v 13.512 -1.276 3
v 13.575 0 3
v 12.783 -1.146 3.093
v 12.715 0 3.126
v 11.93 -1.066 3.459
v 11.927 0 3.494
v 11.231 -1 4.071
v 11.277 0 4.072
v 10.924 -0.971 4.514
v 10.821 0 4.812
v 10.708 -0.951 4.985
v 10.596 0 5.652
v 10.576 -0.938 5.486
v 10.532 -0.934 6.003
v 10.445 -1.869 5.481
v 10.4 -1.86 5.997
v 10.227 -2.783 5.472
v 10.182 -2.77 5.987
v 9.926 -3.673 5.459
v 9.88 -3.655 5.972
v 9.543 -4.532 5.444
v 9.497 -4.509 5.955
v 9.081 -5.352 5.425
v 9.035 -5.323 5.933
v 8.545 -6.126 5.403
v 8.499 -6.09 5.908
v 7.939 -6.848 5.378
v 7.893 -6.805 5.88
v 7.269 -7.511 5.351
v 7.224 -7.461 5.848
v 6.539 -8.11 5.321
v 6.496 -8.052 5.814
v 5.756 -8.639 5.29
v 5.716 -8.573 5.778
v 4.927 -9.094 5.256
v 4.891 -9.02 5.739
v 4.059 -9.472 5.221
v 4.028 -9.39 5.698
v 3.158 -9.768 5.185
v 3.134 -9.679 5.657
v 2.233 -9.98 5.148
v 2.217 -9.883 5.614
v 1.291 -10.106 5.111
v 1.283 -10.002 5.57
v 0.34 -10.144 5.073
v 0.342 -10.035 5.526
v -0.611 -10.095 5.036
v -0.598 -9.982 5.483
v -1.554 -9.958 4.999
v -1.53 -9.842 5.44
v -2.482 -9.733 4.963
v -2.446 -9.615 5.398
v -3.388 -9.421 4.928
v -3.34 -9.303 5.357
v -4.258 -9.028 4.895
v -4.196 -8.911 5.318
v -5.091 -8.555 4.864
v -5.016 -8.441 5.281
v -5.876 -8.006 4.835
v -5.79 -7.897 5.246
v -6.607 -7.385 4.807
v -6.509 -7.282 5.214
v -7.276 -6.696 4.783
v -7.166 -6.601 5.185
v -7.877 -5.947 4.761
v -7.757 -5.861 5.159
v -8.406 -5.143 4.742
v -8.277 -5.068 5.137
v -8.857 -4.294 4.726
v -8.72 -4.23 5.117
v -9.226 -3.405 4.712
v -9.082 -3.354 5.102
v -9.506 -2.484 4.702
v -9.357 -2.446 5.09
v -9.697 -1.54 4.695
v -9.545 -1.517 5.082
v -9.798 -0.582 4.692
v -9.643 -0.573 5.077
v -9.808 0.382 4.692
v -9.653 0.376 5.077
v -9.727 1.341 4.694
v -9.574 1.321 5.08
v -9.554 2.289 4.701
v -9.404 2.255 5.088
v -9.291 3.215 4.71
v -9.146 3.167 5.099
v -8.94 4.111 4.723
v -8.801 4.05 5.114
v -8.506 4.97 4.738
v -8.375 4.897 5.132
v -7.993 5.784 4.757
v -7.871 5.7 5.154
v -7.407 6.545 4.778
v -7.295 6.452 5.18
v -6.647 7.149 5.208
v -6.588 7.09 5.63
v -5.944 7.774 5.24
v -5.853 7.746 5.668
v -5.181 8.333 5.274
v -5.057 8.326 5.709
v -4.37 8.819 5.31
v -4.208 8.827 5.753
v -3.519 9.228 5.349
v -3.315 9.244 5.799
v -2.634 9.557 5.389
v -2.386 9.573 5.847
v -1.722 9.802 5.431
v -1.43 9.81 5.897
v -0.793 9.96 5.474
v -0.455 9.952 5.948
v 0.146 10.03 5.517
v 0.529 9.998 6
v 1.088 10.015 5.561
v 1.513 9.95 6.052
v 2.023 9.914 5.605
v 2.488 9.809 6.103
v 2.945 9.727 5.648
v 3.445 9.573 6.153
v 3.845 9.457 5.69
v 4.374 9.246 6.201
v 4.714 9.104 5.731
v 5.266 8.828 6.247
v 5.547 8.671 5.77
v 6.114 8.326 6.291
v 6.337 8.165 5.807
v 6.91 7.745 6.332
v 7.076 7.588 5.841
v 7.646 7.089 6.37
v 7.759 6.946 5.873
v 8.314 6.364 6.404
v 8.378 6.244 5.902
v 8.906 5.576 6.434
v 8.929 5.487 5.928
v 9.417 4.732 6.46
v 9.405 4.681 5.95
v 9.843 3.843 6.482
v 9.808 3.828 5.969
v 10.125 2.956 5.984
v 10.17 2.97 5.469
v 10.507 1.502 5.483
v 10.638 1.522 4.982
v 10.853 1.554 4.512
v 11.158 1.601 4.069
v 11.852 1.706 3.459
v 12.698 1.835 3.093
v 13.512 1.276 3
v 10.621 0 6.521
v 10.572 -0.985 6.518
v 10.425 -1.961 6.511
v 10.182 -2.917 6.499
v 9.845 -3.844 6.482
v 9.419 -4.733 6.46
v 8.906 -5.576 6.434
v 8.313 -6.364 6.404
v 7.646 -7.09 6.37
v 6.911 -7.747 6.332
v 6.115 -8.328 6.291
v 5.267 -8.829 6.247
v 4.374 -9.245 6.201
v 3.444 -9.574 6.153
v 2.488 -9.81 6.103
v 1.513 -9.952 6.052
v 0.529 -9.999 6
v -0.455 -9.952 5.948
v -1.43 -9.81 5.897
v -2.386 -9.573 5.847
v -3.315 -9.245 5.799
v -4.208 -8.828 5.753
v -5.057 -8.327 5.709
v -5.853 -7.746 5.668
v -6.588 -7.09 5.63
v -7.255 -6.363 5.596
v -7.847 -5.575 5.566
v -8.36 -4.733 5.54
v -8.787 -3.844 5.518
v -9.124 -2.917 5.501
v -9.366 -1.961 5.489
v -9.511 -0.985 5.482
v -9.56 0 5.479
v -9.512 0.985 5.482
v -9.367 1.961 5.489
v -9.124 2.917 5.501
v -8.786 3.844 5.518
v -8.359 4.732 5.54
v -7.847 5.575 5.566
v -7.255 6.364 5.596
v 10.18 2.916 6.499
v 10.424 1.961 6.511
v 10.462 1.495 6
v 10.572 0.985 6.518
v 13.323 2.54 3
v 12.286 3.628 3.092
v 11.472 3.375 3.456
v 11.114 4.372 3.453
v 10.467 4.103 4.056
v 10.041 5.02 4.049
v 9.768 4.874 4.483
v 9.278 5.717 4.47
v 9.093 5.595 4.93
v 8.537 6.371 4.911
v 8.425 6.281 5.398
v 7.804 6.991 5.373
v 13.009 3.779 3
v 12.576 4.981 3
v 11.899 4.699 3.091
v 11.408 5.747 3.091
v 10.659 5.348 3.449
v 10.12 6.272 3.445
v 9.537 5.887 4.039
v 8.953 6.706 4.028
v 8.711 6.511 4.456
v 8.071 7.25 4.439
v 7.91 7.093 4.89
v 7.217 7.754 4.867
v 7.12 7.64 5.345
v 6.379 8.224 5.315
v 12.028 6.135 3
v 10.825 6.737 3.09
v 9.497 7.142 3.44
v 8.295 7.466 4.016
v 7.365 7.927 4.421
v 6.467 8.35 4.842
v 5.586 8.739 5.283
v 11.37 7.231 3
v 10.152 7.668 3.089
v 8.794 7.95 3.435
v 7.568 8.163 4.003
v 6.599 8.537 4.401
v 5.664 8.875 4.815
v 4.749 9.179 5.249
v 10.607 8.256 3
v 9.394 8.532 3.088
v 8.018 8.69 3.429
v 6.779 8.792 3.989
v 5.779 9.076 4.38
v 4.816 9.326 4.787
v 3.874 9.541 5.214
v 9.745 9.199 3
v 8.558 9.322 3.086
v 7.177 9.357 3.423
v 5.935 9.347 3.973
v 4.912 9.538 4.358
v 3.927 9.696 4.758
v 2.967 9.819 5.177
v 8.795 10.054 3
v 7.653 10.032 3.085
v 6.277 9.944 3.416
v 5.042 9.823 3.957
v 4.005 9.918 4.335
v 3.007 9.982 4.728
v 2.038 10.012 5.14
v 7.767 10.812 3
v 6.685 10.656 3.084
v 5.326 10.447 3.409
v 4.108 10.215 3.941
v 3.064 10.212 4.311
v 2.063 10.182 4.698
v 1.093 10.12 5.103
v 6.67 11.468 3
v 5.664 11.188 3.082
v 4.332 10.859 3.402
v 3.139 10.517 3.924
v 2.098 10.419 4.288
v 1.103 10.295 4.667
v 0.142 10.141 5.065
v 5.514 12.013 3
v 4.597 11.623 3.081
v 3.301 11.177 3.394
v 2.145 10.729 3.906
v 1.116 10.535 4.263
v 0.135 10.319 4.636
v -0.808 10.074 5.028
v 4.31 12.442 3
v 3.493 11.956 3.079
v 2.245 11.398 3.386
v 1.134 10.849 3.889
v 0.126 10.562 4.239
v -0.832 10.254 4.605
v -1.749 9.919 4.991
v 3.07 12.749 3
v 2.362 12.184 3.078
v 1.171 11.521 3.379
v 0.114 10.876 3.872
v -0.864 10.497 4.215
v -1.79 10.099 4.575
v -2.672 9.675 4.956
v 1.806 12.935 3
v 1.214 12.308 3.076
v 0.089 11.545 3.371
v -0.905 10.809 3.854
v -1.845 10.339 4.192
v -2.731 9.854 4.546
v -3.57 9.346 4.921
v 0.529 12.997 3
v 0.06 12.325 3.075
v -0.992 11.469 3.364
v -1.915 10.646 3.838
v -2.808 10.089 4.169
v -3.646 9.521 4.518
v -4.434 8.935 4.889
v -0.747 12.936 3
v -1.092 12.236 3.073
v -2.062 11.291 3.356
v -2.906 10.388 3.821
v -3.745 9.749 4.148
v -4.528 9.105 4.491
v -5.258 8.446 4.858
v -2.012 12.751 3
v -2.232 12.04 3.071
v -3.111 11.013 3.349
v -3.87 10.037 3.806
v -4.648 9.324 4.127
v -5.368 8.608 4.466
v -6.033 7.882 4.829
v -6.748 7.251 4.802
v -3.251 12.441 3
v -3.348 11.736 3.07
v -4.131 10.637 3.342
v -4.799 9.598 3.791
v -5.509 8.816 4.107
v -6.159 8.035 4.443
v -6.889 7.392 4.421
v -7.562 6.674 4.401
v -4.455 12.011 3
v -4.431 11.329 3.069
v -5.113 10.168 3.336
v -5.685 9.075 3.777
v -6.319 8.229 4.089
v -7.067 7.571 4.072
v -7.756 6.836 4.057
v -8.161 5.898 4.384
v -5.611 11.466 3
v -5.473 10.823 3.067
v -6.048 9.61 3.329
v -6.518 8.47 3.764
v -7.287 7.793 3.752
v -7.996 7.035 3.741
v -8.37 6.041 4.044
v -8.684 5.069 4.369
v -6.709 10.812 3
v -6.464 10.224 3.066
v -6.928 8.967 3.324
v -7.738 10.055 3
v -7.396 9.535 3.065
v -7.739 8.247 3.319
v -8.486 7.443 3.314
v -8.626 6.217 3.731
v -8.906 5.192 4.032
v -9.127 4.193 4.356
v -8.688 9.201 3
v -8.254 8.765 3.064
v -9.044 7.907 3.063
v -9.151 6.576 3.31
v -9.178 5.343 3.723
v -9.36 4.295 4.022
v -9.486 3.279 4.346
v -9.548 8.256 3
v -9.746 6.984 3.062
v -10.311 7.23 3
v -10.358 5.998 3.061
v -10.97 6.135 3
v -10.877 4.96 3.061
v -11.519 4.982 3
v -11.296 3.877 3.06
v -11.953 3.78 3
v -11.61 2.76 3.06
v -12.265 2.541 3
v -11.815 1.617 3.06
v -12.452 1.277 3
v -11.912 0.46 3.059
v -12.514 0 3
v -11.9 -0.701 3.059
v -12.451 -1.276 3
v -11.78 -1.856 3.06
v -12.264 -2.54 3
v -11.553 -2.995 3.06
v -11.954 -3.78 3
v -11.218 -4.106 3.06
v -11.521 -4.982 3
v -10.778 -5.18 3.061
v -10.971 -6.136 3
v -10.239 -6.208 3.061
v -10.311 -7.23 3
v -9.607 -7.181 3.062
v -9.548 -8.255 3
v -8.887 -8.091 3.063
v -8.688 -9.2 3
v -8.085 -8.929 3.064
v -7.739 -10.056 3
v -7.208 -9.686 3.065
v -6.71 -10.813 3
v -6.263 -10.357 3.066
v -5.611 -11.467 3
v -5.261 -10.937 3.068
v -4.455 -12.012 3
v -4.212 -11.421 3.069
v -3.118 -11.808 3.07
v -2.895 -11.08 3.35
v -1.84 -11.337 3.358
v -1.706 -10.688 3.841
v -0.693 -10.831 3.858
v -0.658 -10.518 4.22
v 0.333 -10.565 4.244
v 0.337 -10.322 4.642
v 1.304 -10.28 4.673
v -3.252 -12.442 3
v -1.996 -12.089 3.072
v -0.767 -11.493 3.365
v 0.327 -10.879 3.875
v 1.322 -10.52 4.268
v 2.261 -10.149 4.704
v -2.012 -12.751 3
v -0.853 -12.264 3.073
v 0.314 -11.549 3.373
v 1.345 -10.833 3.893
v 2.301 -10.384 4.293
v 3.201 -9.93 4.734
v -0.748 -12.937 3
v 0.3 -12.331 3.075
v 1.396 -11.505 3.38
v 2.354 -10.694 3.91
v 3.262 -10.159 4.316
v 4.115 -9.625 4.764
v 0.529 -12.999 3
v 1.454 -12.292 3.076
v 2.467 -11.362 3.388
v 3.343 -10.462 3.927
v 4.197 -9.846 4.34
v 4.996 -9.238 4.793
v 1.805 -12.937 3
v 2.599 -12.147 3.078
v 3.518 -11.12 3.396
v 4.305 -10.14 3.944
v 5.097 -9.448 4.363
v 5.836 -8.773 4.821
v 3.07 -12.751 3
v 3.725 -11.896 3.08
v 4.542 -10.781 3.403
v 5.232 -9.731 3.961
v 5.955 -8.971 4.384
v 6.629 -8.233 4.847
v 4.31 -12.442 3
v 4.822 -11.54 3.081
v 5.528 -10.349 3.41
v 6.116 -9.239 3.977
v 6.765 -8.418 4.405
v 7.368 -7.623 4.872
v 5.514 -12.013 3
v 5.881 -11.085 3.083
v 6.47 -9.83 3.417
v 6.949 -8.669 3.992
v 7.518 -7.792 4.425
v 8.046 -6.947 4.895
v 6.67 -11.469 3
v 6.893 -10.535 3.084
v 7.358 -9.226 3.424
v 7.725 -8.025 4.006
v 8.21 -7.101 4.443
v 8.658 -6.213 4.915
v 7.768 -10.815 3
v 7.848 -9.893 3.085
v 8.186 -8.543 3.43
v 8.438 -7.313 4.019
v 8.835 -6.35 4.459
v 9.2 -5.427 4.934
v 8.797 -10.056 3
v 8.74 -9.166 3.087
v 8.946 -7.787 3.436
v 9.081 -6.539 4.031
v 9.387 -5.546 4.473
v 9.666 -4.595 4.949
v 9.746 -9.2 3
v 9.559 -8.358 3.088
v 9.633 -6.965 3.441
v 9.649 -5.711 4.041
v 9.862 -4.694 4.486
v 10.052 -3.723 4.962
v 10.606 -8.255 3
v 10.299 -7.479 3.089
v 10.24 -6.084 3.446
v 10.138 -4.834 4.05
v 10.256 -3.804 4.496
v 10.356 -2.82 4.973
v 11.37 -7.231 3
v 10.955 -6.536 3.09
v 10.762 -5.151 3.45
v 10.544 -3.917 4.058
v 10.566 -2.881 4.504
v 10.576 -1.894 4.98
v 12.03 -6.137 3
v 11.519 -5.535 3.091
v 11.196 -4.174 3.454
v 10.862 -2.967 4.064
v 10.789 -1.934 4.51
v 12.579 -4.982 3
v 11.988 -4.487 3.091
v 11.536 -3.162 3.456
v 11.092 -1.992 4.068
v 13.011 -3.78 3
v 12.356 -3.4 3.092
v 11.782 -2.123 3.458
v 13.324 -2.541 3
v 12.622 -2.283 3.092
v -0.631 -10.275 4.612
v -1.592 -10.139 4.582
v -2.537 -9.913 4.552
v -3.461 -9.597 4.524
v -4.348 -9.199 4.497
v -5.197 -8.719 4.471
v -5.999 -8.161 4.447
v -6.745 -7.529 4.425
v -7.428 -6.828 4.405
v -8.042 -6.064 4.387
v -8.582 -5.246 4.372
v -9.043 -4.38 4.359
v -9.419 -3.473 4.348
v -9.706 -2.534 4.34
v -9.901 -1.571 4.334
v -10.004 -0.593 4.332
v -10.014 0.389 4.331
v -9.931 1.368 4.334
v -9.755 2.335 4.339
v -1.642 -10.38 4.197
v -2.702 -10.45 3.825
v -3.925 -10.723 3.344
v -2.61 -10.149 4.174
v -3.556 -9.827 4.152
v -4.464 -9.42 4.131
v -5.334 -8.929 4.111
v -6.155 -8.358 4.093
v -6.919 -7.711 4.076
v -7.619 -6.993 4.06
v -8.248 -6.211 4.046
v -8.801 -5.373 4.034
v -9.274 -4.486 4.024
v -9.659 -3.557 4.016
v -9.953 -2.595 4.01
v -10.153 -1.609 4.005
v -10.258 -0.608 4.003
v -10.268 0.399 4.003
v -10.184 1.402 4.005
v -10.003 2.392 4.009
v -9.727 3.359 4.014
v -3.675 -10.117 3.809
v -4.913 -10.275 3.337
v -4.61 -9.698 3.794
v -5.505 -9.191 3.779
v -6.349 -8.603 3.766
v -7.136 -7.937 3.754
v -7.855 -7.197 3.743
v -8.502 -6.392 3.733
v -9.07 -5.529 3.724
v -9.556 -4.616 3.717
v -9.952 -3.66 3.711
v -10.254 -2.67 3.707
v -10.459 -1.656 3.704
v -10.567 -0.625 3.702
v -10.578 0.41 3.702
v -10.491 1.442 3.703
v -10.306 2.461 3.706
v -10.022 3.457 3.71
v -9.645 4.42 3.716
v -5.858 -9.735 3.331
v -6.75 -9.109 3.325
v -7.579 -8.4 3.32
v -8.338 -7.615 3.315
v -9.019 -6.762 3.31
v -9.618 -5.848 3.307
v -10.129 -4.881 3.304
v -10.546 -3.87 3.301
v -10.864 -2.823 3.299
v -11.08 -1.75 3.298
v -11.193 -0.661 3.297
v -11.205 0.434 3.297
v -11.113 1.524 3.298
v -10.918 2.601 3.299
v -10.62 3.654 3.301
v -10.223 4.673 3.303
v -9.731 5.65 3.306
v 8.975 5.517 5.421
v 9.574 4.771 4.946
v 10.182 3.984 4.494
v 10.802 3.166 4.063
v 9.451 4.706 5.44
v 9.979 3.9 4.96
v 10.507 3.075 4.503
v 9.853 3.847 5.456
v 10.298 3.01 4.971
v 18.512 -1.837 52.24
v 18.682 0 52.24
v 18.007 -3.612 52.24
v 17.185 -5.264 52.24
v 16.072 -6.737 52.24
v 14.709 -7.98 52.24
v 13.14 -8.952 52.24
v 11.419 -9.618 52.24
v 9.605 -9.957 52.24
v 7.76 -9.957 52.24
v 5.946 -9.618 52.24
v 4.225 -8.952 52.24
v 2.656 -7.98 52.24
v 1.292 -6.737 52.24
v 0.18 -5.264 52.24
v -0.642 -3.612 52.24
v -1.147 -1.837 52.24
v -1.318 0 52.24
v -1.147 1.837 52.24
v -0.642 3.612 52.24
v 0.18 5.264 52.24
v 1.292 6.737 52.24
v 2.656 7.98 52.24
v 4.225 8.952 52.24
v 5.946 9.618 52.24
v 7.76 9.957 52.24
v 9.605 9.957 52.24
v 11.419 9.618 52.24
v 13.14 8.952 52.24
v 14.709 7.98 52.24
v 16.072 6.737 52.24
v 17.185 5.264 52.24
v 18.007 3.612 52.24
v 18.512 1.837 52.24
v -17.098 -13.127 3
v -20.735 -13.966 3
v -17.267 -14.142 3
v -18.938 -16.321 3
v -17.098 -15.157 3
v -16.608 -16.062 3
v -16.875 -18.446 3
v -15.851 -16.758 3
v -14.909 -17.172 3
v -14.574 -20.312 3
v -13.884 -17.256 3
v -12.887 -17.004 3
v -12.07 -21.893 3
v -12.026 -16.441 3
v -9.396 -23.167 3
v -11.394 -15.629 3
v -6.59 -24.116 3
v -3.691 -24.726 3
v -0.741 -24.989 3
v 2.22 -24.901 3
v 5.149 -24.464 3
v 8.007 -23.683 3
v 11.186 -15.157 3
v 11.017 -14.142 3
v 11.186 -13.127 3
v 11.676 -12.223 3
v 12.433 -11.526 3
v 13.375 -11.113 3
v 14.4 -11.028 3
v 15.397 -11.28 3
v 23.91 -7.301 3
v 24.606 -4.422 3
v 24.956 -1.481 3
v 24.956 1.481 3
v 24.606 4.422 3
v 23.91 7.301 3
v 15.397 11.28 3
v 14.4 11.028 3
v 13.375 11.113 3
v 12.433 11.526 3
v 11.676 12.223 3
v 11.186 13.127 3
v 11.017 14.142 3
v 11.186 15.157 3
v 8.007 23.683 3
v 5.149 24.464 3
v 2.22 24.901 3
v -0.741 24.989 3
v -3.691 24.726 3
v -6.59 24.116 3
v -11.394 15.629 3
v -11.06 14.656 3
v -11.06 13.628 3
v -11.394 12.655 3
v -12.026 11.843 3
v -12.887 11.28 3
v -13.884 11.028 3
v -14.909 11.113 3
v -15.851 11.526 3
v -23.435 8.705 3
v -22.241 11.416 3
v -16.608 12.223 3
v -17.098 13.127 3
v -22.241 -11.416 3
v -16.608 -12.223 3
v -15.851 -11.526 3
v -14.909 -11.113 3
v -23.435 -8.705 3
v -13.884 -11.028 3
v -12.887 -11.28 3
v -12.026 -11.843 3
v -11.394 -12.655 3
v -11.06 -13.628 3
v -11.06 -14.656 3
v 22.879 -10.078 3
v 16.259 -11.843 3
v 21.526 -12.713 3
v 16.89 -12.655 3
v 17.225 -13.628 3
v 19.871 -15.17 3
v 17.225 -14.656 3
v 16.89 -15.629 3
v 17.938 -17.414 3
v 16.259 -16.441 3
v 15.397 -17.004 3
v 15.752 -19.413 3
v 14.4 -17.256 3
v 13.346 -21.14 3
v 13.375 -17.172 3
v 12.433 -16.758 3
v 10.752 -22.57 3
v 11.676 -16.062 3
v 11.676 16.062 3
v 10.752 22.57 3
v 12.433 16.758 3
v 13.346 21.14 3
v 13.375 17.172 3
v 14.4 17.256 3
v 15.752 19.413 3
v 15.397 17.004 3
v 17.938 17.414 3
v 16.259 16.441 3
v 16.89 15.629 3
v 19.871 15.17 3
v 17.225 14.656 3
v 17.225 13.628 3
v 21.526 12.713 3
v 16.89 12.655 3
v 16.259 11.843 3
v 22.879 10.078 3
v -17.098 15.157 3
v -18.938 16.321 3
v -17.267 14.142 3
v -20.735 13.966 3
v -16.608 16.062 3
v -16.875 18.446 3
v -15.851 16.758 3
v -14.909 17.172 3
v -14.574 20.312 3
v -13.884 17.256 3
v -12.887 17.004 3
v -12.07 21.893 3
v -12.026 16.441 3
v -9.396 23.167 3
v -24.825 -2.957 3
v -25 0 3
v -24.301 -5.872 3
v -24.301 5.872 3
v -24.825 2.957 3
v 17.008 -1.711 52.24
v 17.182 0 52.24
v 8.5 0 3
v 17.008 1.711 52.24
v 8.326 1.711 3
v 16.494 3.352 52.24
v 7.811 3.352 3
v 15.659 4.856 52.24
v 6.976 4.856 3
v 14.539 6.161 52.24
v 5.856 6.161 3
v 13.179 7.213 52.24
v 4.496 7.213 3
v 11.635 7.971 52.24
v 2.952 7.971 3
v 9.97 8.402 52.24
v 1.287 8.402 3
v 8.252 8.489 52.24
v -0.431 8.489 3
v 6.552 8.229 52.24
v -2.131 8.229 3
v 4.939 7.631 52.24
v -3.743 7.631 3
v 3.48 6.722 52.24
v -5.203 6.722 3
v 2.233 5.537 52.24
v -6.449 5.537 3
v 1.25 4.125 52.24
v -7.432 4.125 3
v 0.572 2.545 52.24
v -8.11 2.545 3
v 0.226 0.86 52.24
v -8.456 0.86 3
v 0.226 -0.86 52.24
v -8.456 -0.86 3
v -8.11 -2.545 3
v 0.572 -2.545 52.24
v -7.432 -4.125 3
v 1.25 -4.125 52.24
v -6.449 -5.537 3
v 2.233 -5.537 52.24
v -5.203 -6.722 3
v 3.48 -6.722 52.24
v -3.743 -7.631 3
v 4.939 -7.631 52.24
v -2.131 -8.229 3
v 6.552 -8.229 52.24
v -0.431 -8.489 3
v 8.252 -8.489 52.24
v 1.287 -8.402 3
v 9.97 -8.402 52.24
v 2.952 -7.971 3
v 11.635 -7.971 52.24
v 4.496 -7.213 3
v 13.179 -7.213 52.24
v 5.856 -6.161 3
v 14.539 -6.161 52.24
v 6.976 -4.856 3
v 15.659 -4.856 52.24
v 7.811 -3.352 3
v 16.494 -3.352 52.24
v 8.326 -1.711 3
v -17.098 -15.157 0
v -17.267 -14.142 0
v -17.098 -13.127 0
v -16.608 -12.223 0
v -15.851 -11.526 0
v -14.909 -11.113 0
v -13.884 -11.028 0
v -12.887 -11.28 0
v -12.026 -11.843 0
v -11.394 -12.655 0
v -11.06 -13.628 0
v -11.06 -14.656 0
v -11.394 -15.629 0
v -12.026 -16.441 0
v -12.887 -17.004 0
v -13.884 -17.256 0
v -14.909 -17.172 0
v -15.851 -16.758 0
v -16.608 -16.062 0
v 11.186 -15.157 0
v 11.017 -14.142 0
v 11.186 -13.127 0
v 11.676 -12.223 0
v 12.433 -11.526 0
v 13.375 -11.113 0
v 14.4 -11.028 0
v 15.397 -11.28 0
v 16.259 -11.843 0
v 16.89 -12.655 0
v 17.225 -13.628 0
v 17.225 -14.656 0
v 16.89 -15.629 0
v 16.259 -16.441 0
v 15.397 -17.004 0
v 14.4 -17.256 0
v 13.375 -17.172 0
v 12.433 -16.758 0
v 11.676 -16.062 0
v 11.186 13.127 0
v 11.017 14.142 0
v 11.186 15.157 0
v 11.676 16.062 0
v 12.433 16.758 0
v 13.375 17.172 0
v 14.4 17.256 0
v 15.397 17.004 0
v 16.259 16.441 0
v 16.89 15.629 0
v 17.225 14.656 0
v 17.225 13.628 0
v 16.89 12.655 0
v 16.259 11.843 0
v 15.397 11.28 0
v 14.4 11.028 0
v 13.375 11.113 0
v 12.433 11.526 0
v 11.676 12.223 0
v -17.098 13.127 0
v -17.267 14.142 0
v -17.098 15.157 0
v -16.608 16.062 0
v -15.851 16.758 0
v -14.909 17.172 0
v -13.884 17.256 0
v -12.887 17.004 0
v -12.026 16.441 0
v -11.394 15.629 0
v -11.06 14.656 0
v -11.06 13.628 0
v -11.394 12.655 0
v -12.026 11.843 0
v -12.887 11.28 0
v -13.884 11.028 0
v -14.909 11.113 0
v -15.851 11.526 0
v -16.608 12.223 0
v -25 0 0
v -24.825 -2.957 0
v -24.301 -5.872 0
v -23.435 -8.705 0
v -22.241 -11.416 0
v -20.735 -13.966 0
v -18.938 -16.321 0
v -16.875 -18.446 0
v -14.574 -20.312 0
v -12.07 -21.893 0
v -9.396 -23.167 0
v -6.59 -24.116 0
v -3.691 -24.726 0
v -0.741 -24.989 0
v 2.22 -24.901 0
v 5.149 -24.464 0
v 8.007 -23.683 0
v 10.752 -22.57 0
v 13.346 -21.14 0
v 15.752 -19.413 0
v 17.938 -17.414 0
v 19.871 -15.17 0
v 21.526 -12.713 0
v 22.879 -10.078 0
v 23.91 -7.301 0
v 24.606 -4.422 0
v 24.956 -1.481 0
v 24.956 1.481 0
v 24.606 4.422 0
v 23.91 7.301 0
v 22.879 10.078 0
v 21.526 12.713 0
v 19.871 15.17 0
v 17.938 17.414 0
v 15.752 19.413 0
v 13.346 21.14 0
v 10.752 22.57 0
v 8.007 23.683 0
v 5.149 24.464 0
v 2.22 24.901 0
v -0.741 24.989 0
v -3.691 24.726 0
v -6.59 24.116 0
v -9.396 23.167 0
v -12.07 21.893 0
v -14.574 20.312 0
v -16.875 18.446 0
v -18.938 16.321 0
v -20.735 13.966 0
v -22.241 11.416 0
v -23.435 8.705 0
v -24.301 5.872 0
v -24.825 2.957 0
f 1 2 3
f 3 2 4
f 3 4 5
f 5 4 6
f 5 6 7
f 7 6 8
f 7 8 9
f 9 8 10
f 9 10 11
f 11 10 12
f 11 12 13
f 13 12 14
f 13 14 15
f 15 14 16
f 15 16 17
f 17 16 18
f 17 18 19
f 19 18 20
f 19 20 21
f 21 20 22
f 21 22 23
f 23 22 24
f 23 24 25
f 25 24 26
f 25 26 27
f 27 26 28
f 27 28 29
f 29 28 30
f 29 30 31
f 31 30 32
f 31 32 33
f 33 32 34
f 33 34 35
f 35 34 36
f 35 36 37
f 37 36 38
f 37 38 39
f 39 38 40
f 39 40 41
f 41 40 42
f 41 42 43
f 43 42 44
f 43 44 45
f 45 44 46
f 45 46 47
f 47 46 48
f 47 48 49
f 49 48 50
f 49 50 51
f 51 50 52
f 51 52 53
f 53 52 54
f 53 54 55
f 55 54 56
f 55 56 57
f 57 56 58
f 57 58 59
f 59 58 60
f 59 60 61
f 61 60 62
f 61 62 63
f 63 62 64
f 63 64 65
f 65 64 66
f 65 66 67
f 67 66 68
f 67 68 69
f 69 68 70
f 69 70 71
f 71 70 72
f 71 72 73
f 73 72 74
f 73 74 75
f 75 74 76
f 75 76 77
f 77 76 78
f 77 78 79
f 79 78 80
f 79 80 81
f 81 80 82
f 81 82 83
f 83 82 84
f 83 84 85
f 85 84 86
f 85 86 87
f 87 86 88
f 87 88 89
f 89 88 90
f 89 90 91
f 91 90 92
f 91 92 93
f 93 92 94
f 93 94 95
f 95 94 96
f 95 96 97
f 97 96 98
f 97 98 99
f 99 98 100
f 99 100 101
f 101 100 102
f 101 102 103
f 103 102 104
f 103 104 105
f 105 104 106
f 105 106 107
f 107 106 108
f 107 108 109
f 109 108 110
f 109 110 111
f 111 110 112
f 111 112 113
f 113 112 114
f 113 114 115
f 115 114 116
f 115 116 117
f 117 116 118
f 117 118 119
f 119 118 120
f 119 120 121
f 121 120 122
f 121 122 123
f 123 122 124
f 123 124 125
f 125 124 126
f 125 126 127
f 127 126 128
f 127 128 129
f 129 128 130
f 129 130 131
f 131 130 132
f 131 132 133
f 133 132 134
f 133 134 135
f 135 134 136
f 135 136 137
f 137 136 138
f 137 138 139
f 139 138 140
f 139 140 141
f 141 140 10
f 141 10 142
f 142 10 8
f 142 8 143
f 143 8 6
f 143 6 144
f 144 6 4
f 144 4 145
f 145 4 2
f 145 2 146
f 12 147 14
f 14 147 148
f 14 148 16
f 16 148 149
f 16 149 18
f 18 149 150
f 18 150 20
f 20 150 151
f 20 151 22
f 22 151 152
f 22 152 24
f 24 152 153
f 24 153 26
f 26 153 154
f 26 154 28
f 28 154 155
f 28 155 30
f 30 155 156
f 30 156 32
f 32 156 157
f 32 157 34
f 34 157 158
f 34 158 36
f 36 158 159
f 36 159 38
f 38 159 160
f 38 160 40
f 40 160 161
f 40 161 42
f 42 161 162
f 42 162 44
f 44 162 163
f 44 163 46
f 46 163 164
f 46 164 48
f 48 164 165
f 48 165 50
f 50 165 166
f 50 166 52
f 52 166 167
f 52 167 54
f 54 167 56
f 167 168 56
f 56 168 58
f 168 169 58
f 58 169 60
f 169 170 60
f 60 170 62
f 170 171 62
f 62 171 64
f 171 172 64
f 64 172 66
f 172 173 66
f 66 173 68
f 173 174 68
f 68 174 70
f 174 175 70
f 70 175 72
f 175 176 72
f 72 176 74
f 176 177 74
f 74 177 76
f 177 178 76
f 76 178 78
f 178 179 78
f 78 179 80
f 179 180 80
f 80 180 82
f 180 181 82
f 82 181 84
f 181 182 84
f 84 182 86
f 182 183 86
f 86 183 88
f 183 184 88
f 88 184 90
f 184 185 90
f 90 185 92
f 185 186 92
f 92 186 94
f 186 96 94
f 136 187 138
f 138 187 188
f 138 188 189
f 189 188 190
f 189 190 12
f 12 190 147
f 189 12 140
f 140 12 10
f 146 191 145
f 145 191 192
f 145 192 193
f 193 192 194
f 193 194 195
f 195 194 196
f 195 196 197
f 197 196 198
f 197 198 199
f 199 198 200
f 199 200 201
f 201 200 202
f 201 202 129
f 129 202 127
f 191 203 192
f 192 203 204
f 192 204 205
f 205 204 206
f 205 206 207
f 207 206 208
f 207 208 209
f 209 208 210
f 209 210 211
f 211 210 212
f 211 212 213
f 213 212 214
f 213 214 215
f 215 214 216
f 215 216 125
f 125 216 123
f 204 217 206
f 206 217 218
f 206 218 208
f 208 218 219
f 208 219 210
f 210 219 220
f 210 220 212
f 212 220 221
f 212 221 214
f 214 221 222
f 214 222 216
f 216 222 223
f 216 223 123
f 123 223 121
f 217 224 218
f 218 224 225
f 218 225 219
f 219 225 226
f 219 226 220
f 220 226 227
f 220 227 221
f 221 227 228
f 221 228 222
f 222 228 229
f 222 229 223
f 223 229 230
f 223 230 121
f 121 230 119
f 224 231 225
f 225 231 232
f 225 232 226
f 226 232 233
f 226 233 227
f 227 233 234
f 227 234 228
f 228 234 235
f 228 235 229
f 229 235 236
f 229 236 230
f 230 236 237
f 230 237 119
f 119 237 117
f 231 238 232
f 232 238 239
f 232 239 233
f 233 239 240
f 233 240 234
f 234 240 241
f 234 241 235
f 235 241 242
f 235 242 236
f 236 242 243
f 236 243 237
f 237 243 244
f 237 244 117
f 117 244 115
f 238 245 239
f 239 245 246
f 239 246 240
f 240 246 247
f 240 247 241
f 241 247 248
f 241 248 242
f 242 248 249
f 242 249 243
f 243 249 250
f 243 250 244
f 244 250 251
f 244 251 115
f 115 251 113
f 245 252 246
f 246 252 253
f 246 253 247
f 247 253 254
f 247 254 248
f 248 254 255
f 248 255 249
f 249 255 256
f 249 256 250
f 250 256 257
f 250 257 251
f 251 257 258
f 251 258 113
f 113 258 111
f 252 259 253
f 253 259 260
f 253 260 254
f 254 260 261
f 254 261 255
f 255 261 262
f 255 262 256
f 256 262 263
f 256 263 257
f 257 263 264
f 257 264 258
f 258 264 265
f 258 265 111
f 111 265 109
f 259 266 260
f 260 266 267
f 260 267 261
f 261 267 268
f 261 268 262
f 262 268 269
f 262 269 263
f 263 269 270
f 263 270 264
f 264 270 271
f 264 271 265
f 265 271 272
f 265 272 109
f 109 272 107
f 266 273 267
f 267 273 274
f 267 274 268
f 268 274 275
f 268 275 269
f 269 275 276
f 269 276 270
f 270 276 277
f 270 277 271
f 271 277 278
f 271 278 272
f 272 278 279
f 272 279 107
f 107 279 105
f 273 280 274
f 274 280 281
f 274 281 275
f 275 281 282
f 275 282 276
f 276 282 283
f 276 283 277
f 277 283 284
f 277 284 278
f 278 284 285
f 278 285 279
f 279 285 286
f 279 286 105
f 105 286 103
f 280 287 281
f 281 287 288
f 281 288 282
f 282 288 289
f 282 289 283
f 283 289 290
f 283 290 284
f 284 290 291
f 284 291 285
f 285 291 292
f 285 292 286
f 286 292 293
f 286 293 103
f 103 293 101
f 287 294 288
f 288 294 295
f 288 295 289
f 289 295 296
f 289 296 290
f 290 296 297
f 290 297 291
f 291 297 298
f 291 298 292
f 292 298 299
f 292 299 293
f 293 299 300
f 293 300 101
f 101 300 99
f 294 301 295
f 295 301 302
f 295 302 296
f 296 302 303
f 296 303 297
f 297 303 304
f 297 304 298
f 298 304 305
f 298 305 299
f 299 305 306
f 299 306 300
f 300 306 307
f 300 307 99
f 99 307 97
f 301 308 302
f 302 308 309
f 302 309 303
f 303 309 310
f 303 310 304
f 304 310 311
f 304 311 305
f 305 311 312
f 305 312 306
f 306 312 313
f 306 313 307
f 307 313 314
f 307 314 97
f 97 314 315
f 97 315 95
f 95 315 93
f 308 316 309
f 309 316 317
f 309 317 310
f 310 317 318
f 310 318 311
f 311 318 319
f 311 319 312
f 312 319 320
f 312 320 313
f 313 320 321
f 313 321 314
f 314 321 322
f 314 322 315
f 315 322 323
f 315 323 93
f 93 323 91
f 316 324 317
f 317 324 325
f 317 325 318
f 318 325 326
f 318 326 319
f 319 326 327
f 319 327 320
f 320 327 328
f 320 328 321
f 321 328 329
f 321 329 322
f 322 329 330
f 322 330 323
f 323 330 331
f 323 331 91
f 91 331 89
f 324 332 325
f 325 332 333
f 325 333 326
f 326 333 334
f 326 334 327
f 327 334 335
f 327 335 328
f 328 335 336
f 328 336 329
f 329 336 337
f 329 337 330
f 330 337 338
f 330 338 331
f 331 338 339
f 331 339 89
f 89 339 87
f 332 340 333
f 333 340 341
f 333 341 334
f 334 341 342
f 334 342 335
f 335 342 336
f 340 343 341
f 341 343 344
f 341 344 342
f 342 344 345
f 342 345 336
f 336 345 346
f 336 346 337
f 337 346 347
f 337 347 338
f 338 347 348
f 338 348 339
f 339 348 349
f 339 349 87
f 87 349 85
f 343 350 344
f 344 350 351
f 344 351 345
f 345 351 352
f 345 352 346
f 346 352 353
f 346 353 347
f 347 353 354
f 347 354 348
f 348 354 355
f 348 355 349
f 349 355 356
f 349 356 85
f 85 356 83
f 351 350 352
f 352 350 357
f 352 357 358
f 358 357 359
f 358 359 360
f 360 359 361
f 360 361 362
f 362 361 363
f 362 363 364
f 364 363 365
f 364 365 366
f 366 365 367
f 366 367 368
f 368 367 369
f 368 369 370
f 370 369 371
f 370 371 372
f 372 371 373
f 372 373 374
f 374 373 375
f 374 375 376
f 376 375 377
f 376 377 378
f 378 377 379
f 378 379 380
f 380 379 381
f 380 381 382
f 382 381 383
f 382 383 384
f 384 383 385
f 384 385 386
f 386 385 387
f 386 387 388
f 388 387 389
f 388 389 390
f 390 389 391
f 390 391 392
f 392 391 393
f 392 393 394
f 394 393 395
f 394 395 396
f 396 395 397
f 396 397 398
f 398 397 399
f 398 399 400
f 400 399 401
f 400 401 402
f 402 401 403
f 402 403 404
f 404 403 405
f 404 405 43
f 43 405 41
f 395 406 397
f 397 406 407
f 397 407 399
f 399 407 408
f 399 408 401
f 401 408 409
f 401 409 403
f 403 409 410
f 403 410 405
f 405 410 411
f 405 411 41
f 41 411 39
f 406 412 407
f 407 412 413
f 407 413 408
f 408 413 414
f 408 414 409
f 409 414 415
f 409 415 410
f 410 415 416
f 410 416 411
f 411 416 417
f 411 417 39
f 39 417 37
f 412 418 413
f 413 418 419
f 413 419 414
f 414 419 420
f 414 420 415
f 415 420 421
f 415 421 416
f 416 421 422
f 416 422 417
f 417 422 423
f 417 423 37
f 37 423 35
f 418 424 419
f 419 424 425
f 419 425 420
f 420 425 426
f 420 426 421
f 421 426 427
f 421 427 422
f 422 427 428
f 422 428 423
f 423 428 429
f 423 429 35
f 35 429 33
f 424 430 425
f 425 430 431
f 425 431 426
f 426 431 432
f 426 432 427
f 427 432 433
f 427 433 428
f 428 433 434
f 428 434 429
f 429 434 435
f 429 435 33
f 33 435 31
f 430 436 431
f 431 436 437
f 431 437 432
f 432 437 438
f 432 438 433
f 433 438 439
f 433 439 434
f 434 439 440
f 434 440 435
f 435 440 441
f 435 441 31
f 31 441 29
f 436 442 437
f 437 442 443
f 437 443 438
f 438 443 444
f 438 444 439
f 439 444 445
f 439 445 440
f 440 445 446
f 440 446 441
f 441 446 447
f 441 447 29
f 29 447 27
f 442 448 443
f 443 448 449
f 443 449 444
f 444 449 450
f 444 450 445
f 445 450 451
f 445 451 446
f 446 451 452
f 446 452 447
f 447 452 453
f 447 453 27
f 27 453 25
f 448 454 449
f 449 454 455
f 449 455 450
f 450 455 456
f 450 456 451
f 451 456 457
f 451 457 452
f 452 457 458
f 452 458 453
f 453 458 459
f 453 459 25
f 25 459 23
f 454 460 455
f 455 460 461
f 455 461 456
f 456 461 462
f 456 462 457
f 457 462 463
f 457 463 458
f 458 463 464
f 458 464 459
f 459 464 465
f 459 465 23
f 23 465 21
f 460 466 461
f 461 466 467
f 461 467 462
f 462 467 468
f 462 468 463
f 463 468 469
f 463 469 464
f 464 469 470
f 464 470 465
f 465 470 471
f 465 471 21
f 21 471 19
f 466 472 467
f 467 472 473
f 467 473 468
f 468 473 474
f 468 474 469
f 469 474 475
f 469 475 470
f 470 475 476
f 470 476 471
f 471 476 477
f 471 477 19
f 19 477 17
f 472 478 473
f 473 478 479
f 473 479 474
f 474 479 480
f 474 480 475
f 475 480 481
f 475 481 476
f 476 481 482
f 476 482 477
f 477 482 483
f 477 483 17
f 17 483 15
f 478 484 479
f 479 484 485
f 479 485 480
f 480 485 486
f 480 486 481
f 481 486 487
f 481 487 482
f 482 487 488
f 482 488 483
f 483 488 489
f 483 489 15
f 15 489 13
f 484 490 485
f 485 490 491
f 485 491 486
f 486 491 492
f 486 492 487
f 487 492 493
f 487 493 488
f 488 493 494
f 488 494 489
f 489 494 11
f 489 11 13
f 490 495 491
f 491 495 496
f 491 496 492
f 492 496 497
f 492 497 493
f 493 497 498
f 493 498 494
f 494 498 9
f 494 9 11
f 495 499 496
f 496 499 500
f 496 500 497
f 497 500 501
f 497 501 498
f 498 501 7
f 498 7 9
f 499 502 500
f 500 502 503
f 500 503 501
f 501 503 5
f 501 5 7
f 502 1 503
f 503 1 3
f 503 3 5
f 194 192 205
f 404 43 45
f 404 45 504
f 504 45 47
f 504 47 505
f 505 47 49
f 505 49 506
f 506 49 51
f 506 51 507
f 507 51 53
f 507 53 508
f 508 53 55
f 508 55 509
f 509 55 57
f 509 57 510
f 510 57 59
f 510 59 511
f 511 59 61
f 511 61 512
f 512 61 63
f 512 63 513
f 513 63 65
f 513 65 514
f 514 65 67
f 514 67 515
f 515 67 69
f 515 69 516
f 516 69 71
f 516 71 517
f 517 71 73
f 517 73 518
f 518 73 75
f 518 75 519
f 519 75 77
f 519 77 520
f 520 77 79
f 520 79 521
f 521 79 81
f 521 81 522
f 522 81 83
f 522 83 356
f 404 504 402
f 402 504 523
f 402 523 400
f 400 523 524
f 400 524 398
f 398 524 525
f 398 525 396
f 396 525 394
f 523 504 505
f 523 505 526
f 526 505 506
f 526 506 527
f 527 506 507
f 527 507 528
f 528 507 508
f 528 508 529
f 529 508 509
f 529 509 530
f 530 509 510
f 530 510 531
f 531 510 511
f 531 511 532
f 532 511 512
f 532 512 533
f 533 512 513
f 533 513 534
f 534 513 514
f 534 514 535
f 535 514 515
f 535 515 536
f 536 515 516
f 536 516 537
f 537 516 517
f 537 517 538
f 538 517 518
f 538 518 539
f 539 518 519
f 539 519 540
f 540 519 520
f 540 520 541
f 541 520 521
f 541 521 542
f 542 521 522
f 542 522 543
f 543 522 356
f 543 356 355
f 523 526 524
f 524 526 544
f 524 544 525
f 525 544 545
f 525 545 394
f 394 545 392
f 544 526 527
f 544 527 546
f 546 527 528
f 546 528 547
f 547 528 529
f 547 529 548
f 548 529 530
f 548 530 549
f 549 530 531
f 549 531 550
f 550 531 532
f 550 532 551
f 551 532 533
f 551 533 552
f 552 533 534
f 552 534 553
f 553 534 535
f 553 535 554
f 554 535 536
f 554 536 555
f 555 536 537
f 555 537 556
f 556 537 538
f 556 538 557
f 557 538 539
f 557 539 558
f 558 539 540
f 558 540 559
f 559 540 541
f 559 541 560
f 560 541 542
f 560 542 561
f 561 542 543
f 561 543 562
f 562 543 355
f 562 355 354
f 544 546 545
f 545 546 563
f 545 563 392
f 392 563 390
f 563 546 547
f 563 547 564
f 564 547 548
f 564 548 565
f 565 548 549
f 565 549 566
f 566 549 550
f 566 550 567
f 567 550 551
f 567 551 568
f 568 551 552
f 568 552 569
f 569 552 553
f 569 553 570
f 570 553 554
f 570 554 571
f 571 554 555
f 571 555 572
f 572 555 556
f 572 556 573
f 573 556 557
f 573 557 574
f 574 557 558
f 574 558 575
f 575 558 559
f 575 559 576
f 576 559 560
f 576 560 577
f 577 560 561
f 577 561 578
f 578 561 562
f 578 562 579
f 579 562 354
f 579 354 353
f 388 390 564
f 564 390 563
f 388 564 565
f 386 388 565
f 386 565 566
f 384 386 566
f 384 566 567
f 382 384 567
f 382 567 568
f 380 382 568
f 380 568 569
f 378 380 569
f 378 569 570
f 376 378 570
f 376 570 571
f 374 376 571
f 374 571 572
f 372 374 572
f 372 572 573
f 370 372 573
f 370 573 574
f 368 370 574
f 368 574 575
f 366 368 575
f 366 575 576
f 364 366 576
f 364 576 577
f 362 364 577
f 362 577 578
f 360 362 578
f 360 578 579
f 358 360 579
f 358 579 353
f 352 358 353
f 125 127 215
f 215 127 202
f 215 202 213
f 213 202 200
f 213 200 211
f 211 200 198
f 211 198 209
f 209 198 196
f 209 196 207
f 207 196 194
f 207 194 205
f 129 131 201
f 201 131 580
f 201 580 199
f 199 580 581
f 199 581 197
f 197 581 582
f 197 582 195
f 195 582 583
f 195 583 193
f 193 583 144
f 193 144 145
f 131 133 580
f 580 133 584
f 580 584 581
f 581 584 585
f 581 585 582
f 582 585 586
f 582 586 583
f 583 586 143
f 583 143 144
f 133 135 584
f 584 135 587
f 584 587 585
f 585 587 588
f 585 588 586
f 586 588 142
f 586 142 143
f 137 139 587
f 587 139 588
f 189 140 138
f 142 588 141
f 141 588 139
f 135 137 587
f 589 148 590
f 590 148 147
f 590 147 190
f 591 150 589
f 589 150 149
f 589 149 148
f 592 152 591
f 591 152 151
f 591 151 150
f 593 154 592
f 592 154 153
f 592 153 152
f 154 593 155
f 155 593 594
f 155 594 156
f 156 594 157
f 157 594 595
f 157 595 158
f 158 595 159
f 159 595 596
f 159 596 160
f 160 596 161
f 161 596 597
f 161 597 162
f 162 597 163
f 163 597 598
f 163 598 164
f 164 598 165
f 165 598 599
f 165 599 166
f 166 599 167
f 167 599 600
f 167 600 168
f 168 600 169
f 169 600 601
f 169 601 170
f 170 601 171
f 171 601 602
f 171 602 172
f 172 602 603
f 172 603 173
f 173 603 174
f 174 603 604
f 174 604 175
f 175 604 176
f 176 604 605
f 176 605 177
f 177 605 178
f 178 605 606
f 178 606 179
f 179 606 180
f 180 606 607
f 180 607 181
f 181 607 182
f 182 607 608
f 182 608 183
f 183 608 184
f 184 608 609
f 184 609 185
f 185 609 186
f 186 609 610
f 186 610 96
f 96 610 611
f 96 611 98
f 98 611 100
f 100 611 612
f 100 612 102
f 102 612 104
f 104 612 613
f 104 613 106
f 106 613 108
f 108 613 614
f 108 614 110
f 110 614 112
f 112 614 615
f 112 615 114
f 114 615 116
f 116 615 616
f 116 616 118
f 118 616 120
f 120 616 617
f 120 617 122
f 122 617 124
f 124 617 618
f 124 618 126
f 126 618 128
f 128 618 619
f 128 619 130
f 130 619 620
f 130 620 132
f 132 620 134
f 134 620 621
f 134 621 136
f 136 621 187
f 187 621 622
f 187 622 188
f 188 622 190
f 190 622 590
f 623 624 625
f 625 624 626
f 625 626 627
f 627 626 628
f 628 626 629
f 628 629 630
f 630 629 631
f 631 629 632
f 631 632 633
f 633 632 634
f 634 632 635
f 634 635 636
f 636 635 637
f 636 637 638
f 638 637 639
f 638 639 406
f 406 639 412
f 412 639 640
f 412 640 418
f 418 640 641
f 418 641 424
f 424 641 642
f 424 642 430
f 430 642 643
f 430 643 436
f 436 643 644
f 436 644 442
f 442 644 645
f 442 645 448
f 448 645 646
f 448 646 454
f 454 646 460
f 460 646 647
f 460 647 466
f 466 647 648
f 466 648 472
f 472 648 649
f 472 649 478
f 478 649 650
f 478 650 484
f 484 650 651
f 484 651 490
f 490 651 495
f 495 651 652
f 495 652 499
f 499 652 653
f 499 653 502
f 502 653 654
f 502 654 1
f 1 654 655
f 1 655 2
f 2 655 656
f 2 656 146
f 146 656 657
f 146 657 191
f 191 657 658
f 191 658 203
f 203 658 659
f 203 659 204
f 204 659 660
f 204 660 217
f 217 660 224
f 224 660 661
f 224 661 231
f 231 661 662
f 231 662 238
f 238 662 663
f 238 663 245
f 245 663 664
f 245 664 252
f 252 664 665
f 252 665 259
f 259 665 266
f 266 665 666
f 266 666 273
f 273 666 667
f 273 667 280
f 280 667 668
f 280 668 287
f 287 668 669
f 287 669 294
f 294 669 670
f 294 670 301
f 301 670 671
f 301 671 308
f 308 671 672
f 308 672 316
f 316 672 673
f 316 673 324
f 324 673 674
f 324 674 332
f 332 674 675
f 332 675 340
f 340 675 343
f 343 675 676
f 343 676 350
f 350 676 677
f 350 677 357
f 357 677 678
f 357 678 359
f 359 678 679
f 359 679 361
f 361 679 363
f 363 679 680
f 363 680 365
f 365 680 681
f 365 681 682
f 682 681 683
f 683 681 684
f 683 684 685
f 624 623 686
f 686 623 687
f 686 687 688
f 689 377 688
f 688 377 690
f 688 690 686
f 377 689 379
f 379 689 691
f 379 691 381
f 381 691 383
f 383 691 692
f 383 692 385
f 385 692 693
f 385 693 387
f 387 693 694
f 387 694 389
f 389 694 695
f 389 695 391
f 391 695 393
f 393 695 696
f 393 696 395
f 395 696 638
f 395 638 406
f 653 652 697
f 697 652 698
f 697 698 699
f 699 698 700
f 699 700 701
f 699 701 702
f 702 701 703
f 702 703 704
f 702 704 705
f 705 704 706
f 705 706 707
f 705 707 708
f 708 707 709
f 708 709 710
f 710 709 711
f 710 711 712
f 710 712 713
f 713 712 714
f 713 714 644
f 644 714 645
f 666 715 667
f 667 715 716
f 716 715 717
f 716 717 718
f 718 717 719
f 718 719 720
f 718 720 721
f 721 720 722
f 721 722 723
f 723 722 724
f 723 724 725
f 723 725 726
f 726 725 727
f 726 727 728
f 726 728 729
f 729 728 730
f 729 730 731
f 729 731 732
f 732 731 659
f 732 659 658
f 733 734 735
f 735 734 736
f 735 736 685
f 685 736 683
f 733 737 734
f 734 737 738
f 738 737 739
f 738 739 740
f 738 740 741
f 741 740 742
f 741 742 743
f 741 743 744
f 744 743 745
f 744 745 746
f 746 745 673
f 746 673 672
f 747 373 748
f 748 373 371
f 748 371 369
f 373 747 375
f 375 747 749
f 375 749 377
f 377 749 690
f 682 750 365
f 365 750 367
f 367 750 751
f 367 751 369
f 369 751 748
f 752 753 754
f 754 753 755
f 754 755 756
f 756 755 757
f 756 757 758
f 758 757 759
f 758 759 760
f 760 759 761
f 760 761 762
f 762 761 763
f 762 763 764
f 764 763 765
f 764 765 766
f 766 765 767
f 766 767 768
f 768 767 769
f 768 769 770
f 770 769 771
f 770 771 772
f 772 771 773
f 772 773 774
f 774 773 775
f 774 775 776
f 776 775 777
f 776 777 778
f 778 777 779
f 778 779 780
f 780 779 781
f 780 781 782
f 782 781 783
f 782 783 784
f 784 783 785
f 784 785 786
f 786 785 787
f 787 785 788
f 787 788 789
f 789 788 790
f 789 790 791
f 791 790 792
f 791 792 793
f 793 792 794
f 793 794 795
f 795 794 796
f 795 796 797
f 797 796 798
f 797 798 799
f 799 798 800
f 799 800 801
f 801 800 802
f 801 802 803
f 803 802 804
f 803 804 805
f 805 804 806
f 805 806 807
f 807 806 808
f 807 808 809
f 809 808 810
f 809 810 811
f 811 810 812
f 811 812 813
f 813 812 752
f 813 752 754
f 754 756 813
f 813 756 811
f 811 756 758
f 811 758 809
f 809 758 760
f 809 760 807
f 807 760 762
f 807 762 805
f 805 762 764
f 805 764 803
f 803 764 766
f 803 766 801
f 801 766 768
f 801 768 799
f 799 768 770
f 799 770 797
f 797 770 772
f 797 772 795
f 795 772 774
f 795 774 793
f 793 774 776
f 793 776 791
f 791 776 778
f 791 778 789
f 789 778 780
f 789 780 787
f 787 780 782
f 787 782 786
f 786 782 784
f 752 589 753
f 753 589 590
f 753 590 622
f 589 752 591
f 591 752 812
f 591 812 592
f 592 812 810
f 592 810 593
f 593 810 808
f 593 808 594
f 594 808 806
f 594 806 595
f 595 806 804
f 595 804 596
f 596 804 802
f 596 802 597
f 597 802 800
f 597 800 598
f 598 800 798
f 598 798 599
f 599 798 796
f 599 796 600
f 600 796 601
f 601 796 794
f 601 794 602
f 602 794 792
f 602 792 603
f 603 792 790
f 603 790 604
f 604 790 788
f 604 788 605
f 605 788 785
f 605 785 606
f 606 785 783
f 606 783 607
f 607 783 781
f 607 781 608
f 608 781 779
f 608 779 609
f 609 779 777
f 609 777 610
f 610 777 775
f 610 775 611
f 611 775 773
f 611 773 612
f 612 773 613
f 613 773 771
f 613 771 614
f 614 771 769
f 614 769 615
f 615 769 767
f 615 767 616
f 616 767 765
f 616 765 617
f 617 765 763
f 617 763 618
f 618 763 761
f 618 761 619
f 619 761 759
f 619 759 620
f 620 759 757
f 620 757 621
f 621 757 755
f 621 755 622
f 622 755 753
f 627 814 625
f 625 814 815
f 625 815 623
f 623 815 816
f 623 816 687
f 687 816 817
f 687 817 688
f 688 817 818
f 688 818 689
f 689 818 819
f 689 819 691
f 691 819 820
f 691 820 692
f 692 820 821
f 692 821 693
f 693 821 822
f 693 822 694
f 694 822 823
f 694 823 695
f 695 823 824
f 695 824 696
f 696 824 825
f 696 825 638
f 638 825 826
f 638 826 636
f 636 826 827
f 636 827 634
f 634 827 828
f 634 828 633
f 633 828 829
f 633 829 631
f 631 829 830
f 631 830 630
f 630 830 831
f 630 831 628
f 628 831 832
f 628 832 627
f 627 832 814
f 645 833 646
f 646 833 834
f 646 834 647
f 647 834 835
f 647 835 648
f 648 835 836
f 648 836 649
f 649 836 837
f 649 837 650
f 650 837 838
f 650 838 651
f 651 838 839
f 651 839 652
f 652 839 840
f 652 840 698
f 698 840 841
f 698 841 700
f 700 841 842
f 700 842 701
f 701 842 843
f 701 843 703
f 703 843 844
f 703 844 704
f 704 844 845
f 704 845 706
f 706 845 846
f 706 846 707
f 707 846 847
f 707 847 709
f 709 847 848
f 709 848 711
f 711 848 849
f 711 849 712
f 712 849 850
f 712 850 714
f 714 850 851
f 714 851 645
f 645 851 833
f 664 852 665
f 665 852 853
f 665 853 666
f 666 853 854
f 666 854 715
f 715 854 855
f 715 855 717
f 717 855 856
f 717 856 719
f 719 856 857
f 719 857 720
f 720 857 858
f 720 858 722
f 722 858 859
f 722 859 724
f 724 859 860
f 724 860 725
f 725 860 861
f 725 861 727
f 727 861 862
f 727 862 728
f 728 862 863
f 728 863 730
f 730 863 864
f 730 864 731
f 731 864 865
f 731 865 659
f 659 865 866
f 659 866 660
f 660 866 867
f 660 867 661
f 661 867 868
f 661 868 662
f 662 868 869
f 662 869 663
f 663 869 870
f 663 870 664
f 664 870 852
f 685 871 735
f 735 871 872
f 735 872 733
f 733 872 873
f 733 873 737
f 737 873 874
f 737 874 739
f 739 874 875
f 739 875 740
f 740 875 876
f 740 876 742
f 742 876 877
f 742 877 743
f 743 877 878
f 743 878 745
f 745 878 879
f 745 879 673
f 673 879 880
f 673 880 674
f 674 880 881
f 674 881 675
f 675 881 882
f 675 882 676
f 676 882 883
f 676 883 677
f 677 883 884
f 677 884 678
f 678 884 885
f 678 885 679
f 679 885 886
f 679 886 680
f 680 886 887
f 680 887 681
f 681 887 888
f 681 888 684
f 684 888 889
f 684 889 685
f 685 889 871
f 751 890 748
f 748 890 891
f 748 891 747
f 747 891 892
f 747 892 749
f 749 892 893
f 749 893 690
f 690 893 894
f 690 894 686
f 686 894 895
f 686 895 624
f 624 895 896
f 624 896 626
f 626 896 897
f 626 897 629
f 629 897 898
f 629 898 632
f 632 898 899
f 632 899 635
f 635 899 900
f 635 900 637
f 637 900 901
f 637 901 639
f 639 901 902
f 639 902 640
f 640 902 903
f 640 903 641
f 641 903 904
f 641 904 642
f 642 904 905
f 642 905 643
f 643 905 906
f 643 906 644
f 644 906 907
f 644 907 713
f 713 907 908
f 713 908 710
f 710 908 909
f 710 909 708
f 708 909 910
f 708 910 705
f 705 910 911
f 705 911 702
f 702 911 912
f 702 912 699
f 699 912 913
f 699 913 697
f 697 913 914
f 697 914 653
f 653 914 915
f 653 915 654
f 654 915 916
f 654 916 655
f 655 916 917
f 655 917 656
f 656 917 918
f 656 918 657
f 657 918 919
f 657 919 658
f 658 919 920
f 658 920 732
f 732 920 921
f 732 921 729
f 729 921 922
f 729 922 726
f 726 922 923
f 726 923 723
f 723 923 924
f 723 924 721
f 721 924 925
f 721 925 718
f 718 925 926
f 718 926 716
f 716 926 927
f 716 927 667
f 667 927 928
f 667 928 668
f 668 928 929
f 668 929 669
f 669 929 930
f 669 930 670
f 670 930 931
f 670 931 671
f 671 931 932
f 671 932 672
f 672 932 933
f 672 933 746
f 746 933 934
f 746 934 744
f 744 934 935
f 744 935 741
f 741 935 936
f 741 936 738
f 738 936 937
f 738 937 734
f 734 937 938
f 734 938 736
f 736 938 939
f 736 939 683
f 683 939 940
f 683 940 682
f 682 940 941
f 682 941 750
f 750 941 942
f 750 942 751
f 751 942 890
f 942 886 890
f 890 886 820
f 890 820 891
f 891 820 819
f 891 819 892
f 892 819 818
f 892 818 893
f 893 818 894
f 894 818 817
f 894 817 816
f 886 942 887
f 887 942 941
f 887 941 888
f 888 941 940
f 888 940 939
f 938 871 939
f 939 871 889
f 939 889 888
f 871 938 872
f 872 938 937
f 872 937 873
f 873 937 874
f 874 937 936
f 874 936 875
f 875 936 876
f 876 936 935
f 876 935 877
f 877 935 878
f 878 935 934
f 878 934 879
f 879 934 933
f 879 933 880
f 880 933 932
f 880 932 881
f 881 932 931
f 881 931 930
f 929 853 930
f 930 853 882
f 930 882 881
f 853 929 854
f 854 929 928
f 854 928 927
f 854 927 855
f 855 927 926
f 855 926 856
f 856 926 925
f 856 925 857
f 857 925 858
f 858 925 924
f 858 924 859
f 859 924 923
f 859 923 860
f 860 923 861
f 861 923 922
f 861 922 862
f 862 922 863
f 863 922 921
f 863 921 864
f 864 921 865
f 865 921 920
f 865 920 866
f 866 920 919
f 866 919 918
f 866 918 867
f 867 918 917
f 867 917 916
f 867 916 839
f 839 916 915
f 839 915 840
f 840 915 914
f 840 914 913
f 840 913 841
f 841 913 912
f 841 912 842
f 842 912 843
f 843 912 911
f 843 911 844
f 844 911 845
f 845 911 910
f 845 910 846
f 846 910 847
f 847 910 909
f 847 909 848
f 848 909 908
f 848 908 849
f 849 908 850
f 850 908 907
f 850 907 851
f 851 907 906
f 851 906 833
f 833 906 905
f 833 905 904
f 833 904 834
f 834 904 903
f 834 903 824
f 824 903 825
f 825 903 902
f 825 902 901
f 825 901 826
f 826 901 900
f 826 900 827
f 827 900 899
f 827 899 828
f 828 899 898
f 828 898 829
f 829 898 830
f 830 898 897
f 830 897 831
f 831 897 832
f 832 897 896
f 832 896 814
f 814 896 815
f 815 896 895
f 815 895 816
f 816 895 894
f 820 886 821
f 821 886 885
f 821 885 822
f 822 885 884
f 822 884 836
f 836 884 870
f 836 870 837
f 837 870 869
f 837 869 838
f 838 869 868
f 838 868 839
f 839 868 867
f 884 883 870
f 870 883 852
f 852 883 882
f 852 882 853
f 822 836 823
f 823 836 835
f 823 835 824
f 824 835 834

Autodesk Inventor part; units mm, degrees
ref_plane "YZ Plane" through (0, 0, 0) normal (1, 0, 0) x (0, 1, 0)
ref_plane "XZ Plane" through (0, 0, 0) normal (0, 1, 0) x (-1, 0, 0)
ref_plane "XY Plane" through (0, 0, 0) normal (0, 0, 1) x (1, 0, 0)
sketch "Sketch2" plane through (0, 0, 0) normal (0, 0, 1) x (-1, 0, 0)
  circle A0 centre (0, 0) radius 25
  line L0 (0, 0) -> (20, 0) construction
  line L1 (0, 0) -> (20, 0) construction
  line L2 (0, 0) -> (20, 0) construction
  line L3 (0, 0) -> (20, 0) construction
  circle A1 centre (14.1421, 14.1421) radius 3.125
  circle A2 centre (-14.1421, 14.1421) radius 3.125
  circle A3 centre (-14.1421, -14.1421) radius 3.125
  circle A4 centre (14.1421, -14.1421) radius 3.125
  dimension "d0" = 50
  dimension "d10" = 6.25
  dimension "d11" = 6.25
  dimension "d12" = 6.25
  dimension "d13" = 6.25
extrude "Extrusion1" add sketch "Sketch2" along normal blind 3
sketch "Sketch19" plane through (0, 0, 3) normal (0, 0, 1) x (1, 0, 0)
  circle A0 centre (0, 0) radius 10
  dimension "d40" = 20
sketch "Sketch22" plane through (0, 0, 0) normal (0, 1, 0) x (-1, 0, 0)
  line L0 (25, 3) -> (-25, 3) projected
  line L1 (0, 3) -> (-8.6824, 52.2404)
  line L2 (0, 3) -> (50, 3) construction
  point P0 (0, 0)
  dimension "d41" = 50
  dimension "d42" = 100
sweep "Sweep4" add profiles "Sketch19" path "Sketch22" path curves L1
sketch "Sketch23" plane through (0, 0, 3) normal (0, 0, 1) x (1, 0, 0)
  circle A0 centre (0, 0) radius 8.5
  dimension "d45" = 17
sketch "Sketch25" plane through (0, 0, 0) normal (0, 1, 0) x (-1, 0, 0)
  line L0 (25, 3) -> (-25, 3) projected
  line L1 (0, 3) -> (-8.6824, 52.2404)
  line L2 (0, 3) -> (50, 3) construction
  point P0 (0, 0)
  dimension "d46" = 50
  dimension "d47" = 100
sweep "Sweep5" cut profiles "Sketch23" path "Sketch25" path curves L1
fillet "Fillet2" radius 3 1 edges at (-10, 0, 3)
properties part number "SoporteMarcador"
